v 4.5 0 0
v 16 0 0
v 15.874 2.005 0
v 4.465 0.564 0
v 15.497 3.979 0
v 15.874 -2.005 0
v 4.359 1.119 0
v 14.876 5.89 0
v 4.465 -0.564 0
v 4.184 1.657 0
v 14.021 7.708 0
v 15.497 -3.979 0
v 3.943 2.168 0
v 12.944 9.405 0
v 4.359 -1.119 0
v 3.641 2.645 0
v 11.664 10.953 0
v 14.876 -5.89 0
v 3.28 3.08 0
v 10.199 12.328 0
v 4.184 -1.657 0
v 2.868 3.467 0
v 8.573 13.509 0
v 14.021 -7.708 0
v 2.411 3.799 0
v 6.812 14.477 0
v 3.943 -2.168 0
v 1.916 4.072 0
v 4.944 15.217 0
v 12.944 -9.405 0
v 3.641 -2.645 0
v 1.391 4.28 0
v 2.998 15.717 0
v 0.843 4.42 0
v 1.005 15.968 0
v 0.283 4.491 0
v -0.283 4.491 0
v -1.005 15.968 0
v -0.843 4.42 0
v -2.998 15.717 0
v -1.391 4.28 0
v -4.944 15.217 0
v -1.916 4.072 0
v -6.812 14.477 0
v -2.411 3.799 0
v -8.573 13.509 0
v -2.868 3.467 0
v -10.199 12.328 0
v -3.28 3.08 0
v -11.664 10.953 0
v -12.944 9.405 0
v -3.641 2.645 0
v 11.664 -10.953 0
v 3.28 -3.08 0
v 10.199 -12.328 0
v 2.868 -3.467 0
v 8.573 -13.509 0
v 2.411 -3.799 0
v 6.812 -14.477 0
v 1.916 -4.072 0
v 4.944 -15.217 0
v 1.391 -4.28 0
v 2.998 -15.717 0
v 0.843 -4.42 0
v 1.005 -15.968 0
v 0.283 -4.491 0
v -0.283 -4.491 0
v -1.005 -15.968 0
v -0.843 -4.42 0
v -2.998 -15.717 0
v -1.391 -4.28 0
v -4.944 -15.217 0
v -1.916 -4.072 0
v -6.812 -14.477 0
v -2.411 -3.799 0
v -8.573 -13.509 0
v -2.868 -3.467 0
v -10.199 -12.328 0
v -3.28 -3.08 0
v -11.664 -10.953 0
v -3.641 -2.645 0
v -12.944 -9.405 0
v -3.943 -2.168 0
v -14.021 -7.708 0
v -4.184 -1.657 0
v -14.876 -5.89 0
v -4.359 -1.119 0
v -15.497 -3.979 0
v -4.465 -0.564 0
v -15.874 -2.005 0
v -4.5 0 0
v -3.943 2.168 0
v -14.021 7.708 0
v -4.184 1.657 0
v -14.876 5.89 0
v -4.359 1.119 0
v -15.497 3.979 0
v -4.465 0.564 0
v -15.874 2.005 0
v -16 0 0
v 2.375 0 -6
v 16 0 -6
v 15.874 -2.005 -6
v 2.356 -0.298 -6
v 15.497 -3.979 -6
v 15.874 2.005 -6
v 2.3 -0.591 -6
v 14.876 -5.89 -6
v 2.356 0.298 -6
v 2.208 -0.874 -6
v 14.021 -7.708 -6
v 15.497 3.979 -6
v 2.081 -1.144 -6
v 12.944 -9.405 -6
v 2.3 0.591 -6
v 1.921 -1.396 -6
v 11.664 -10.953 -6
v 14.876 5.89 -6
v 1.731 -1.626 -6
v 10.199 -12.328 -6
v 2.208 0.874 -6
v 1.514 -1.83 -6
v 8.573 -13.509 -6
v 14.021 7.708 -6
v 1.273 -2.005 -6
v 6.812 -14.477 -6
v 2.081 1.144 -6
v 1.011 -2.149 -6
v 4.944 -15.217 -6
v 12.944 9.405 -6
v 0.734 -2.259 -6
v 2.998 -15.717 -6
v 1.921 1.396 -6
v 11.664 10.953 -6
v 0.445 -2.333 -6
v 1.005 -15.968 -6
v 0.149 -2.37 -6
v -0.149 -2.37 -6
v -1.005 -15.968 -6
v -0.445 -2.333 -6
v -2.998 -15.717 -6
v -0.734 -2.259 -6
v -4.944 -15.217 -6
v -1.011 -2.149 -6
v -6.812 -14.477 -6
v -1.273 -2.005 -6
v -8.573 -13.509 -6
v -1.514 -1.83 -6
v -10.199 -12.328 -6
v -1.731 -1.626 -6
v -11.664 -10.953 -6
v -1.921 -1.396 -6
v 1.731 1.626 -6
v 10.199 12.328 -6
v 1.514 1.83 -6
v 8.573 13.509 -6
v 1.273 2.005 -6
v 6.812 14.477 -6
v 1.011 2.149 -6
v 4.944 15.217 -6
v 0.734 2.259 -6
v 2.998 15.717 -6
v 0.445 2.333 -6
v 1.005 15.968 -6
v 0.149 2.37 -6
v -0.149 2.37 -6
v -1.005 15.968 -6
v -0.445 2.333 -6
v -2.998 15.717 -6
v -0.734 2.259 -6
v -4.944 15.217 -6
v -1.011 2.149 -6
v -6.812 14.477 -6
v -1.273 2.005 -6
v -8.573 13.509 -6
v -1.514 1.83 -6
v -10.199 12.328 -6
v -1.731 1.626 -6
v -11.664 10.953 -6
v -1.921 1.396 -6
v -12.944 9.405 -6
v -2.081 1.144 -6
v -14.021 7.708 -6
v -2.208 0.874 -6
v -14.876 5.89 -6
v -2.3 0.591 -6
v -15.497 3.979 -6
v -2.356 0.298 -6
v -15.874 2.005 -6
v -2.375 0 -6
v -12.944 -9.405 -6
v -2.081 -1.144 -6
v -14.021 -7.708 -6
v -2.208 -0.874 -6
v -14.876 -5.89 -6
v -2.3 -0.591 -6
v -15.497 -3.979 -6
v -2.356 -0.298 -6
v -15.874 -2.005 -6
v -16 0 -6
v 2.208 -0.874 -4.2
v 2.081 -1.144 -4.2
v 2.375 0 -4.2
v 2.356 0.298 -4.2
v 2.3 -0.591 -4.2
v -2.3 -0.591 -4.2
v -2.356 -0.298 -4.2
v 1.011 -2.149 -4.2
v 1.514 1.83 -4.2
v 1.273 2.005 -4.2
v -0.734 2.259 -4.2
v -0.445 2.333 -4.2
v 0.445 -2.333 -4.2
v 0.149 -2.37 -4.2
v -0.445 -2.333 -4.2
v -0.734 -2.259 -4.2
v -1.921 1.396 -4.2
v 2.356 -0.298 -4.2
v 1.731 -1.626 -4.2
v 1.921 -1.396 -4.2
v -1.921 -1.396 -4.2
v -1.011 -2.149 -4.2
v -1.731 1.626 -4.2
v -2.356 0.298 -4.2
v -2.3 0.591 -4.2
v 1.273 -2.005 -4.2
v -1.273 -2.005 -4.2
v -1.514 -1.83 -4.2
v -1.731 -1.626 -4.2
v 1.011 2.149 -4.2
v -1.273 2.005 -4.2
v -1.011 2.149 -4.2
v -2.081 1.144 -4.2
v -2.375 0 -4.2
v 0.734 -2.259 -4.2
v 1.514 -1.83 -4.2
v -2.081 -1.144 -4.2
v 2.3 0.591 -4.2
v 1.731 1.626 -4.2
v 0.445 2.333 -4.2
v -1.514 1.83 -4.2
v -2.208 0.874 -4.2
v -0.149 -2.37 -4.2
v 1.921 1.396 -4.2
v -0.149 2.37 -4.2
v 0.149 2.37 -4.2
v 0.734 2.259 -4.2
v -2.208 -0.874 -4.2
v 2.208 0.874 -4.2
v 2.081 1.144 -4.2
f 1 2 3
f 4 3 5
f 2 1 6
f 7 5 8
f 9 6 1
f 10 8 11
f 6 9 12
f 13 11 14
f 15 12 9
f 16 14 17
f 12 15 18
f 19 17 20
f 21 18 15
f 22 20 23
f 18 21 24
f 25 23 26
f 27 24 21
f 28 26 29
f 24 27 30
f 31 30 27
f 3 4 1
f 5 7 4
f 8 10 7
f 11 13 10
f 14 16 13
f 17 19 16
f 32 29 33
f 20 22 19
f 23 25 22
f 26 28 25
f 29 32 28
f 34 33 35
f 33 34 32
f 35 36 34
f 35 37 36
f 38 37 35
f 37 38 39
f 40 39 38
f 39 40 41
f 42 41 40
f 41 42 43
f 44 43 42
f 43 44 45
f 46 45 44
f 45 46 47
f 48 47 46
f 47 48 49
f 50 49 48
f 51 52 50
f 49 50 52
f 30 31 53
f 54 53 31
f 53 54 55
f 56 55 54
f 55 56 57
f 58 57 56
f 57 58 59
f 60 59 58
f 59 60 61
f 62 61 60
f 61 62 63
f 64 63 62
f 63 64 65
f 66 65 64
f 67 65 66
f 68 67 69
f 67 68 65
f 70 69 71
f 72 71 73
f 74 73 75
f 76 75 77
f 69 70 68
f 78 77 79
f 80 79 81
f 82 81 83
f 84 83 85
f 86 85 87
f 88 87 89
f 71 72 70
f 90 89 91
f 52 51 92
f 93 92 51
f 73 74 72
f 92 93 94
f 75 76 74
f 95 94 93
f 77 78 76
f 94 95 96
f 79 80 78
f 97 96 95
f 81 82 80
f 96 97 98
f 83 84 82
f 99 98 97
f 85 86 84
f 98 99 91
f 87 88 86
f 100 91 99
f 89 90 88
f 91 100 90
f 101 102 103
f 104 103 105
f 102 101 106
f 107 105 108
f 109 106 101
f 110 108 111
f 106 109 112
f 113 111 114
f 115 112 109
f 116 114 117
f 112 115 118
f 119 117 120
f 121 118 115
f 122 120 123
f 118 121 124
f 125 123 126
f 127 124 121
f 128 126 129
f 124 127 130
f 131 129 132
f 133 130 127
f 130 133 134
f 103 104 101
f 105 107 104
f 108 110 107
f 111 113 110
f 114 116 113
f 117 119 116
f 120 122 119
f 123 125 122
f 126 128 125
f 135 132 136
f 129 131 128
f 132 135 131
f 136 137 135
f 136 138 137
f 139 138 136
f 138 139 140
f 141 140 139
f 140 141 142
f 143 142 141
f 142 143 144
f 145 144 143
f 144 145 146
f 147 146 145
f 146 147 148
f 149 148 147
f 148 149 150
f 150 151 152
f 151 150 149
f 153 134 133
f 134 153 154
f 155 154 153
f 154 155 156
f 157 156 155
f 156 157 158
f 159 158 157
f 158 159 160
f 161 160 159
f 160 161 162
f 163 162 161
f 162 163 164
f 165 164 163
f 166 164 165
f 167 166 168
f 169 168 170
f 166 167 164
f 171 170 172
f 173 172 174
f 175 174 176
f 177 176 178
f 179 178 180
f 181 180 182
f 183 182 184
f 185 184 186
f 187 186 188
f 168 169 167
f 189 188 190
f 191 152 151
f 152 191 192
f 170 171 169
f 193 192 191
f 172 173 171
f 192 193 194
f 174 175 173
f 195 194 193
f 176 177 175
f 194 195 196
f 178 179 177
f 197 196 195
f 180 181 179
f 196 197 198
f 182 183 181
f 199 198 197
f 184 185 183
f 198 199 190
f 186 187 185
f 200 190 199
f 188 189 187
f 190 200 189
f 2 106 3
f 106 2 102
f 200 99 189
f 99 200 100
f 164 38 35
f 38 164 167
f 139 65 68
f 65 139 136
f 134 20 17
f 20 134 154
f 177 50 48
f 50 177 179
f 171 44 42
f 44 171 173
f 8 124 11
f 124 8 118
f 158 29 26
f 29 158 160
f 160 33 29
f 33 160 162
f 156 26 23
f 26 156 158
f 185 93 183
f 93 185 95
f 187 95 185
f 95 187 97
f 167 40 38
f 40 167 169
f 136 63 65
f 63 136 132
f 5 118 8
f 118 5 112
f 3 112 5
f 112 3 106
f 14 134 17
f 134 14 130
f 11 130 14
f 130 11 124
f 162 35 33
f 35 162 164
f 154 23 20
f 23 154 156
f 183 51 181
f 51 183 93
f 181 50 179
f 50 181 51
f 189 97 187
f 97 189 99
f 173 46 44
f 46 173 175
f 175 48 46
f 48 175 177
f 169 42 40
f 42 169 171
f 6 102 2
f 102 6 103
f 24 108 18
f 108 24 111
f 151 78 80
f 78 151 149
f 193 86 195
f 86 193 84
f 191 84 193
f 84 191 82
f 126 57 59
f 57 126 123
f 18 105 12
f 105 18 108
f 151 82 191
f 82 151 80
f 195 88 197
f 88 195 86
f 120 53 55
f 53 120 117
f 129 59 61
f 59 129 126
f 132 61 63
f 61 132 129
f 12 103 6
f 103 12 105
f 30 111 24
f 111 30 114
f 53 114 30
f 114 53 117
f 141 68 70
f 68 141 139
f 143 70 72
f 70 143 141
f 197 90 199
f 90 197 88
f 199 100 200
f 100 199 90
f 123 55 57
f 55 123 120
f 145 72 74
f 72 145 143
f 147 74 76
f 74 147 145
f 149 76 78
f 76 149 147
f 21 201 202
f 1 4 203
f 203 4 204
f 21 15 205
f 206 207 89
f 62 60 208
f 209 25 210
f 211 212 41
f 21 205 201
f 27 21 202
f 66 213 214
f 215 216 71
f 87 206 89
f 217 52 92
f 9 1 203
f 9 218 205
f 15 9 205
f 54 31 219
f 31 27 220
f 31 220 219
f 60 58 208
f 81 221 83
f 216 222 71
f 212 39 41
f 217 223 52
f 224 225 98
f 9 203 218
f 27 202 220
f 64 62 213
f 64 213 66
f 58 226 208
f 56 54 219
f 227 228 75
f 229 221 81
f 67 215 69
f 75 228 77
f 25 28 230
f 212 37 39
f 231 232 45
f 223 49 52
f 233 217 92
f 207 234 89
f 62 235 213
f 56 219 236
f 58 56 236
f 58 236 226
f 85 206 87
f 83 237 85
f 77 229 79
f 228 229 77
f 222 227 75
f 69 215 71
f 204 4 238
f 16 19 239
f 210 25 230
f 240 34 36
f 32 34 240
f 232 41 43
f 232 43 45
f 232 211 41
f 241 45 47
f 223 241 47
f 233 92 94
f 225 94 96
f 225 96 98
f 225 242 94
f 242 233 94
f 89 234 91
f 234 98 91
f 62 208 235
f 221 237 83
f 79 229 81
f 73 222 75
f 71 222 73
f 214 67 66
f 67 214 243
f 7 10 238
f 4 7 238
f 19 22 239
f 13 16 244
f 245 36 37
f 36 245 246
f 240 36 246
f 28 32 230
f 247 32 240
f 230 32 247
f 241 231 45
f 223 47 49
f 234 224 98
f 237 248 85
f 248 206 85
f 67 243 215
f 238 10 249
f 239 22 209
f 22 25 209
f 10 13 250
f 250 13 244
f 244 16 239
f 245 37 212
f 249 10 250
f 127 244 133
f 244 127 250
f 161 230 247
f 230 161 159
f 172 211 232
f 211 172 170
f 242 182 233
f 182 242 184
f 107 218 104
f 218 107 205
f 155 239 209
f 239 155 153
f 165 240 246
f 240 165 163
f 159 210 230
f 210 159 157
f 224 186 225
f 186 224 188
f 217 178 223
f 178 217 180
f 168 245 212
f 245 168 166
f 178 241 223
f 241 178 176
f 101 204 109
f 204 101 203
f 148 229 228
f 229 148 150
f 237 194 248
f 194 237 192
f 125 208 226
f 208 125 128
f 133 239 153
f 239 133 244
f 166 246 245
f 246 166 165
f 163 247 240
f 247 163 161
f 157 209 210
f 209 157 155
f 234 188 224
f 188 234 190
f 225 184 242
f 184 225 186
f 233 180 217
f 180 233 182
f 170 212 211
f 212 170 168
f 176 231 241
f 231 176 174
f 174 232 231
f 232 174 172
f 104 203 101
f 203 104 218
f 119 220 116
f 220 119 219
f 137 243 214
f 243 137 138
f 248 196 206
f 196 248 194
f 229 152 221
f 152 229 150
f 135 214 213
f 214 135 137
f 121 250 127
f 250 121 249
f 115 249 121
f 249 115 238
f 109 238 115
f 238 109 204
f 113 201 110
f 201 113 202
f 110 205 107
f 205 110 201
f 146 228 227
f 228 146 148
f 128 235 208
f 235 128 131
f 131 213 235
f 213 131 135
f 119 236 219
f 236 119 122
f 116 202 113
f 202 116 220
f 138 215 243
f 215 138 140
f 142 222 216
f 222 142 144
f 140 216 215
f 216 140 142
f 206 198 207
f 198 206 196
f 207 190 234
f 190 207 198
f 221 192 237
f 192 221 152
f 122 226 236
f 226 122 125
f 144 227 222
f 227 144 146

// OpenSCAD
$fn = 50;


difference() {
	union() {
		translate(v = [0, 0, -6.0000000000]) {
			cylinder(h = 6, r = 7.0000000000);
		}
		translate(v = [0, 0, -6.0000000000]) {
			cylinder(h = 6, r = 16.0000000000);
		}
	}
	union() {
		translate(v = [0, 0, 0]) {
			rotate(a = [0, 0, 0]) {
				difference() {
					union() {
						#translate(v = [0, 0, -6.0000000000]) {
							cylinder(h = 6, r = 2.2500000000);
						}
						#translate(v = [0, 0, -4.2000000000]) {
							cylinder(h = 4.2000000000, r1 = 2.3750000000, r2 = 4.5000000000);
						}
						#translate(v = [0, 0, -6.0000000000]) {
							cylinder(h = 6, r = 2.3750000000);
						}
						#translate(v = [0, 0, -6.0000000000]) {
							cylinder(h = 6, r = 2.2500000000);
						}
					}
					union();
				}
			}
		}
	}
}
